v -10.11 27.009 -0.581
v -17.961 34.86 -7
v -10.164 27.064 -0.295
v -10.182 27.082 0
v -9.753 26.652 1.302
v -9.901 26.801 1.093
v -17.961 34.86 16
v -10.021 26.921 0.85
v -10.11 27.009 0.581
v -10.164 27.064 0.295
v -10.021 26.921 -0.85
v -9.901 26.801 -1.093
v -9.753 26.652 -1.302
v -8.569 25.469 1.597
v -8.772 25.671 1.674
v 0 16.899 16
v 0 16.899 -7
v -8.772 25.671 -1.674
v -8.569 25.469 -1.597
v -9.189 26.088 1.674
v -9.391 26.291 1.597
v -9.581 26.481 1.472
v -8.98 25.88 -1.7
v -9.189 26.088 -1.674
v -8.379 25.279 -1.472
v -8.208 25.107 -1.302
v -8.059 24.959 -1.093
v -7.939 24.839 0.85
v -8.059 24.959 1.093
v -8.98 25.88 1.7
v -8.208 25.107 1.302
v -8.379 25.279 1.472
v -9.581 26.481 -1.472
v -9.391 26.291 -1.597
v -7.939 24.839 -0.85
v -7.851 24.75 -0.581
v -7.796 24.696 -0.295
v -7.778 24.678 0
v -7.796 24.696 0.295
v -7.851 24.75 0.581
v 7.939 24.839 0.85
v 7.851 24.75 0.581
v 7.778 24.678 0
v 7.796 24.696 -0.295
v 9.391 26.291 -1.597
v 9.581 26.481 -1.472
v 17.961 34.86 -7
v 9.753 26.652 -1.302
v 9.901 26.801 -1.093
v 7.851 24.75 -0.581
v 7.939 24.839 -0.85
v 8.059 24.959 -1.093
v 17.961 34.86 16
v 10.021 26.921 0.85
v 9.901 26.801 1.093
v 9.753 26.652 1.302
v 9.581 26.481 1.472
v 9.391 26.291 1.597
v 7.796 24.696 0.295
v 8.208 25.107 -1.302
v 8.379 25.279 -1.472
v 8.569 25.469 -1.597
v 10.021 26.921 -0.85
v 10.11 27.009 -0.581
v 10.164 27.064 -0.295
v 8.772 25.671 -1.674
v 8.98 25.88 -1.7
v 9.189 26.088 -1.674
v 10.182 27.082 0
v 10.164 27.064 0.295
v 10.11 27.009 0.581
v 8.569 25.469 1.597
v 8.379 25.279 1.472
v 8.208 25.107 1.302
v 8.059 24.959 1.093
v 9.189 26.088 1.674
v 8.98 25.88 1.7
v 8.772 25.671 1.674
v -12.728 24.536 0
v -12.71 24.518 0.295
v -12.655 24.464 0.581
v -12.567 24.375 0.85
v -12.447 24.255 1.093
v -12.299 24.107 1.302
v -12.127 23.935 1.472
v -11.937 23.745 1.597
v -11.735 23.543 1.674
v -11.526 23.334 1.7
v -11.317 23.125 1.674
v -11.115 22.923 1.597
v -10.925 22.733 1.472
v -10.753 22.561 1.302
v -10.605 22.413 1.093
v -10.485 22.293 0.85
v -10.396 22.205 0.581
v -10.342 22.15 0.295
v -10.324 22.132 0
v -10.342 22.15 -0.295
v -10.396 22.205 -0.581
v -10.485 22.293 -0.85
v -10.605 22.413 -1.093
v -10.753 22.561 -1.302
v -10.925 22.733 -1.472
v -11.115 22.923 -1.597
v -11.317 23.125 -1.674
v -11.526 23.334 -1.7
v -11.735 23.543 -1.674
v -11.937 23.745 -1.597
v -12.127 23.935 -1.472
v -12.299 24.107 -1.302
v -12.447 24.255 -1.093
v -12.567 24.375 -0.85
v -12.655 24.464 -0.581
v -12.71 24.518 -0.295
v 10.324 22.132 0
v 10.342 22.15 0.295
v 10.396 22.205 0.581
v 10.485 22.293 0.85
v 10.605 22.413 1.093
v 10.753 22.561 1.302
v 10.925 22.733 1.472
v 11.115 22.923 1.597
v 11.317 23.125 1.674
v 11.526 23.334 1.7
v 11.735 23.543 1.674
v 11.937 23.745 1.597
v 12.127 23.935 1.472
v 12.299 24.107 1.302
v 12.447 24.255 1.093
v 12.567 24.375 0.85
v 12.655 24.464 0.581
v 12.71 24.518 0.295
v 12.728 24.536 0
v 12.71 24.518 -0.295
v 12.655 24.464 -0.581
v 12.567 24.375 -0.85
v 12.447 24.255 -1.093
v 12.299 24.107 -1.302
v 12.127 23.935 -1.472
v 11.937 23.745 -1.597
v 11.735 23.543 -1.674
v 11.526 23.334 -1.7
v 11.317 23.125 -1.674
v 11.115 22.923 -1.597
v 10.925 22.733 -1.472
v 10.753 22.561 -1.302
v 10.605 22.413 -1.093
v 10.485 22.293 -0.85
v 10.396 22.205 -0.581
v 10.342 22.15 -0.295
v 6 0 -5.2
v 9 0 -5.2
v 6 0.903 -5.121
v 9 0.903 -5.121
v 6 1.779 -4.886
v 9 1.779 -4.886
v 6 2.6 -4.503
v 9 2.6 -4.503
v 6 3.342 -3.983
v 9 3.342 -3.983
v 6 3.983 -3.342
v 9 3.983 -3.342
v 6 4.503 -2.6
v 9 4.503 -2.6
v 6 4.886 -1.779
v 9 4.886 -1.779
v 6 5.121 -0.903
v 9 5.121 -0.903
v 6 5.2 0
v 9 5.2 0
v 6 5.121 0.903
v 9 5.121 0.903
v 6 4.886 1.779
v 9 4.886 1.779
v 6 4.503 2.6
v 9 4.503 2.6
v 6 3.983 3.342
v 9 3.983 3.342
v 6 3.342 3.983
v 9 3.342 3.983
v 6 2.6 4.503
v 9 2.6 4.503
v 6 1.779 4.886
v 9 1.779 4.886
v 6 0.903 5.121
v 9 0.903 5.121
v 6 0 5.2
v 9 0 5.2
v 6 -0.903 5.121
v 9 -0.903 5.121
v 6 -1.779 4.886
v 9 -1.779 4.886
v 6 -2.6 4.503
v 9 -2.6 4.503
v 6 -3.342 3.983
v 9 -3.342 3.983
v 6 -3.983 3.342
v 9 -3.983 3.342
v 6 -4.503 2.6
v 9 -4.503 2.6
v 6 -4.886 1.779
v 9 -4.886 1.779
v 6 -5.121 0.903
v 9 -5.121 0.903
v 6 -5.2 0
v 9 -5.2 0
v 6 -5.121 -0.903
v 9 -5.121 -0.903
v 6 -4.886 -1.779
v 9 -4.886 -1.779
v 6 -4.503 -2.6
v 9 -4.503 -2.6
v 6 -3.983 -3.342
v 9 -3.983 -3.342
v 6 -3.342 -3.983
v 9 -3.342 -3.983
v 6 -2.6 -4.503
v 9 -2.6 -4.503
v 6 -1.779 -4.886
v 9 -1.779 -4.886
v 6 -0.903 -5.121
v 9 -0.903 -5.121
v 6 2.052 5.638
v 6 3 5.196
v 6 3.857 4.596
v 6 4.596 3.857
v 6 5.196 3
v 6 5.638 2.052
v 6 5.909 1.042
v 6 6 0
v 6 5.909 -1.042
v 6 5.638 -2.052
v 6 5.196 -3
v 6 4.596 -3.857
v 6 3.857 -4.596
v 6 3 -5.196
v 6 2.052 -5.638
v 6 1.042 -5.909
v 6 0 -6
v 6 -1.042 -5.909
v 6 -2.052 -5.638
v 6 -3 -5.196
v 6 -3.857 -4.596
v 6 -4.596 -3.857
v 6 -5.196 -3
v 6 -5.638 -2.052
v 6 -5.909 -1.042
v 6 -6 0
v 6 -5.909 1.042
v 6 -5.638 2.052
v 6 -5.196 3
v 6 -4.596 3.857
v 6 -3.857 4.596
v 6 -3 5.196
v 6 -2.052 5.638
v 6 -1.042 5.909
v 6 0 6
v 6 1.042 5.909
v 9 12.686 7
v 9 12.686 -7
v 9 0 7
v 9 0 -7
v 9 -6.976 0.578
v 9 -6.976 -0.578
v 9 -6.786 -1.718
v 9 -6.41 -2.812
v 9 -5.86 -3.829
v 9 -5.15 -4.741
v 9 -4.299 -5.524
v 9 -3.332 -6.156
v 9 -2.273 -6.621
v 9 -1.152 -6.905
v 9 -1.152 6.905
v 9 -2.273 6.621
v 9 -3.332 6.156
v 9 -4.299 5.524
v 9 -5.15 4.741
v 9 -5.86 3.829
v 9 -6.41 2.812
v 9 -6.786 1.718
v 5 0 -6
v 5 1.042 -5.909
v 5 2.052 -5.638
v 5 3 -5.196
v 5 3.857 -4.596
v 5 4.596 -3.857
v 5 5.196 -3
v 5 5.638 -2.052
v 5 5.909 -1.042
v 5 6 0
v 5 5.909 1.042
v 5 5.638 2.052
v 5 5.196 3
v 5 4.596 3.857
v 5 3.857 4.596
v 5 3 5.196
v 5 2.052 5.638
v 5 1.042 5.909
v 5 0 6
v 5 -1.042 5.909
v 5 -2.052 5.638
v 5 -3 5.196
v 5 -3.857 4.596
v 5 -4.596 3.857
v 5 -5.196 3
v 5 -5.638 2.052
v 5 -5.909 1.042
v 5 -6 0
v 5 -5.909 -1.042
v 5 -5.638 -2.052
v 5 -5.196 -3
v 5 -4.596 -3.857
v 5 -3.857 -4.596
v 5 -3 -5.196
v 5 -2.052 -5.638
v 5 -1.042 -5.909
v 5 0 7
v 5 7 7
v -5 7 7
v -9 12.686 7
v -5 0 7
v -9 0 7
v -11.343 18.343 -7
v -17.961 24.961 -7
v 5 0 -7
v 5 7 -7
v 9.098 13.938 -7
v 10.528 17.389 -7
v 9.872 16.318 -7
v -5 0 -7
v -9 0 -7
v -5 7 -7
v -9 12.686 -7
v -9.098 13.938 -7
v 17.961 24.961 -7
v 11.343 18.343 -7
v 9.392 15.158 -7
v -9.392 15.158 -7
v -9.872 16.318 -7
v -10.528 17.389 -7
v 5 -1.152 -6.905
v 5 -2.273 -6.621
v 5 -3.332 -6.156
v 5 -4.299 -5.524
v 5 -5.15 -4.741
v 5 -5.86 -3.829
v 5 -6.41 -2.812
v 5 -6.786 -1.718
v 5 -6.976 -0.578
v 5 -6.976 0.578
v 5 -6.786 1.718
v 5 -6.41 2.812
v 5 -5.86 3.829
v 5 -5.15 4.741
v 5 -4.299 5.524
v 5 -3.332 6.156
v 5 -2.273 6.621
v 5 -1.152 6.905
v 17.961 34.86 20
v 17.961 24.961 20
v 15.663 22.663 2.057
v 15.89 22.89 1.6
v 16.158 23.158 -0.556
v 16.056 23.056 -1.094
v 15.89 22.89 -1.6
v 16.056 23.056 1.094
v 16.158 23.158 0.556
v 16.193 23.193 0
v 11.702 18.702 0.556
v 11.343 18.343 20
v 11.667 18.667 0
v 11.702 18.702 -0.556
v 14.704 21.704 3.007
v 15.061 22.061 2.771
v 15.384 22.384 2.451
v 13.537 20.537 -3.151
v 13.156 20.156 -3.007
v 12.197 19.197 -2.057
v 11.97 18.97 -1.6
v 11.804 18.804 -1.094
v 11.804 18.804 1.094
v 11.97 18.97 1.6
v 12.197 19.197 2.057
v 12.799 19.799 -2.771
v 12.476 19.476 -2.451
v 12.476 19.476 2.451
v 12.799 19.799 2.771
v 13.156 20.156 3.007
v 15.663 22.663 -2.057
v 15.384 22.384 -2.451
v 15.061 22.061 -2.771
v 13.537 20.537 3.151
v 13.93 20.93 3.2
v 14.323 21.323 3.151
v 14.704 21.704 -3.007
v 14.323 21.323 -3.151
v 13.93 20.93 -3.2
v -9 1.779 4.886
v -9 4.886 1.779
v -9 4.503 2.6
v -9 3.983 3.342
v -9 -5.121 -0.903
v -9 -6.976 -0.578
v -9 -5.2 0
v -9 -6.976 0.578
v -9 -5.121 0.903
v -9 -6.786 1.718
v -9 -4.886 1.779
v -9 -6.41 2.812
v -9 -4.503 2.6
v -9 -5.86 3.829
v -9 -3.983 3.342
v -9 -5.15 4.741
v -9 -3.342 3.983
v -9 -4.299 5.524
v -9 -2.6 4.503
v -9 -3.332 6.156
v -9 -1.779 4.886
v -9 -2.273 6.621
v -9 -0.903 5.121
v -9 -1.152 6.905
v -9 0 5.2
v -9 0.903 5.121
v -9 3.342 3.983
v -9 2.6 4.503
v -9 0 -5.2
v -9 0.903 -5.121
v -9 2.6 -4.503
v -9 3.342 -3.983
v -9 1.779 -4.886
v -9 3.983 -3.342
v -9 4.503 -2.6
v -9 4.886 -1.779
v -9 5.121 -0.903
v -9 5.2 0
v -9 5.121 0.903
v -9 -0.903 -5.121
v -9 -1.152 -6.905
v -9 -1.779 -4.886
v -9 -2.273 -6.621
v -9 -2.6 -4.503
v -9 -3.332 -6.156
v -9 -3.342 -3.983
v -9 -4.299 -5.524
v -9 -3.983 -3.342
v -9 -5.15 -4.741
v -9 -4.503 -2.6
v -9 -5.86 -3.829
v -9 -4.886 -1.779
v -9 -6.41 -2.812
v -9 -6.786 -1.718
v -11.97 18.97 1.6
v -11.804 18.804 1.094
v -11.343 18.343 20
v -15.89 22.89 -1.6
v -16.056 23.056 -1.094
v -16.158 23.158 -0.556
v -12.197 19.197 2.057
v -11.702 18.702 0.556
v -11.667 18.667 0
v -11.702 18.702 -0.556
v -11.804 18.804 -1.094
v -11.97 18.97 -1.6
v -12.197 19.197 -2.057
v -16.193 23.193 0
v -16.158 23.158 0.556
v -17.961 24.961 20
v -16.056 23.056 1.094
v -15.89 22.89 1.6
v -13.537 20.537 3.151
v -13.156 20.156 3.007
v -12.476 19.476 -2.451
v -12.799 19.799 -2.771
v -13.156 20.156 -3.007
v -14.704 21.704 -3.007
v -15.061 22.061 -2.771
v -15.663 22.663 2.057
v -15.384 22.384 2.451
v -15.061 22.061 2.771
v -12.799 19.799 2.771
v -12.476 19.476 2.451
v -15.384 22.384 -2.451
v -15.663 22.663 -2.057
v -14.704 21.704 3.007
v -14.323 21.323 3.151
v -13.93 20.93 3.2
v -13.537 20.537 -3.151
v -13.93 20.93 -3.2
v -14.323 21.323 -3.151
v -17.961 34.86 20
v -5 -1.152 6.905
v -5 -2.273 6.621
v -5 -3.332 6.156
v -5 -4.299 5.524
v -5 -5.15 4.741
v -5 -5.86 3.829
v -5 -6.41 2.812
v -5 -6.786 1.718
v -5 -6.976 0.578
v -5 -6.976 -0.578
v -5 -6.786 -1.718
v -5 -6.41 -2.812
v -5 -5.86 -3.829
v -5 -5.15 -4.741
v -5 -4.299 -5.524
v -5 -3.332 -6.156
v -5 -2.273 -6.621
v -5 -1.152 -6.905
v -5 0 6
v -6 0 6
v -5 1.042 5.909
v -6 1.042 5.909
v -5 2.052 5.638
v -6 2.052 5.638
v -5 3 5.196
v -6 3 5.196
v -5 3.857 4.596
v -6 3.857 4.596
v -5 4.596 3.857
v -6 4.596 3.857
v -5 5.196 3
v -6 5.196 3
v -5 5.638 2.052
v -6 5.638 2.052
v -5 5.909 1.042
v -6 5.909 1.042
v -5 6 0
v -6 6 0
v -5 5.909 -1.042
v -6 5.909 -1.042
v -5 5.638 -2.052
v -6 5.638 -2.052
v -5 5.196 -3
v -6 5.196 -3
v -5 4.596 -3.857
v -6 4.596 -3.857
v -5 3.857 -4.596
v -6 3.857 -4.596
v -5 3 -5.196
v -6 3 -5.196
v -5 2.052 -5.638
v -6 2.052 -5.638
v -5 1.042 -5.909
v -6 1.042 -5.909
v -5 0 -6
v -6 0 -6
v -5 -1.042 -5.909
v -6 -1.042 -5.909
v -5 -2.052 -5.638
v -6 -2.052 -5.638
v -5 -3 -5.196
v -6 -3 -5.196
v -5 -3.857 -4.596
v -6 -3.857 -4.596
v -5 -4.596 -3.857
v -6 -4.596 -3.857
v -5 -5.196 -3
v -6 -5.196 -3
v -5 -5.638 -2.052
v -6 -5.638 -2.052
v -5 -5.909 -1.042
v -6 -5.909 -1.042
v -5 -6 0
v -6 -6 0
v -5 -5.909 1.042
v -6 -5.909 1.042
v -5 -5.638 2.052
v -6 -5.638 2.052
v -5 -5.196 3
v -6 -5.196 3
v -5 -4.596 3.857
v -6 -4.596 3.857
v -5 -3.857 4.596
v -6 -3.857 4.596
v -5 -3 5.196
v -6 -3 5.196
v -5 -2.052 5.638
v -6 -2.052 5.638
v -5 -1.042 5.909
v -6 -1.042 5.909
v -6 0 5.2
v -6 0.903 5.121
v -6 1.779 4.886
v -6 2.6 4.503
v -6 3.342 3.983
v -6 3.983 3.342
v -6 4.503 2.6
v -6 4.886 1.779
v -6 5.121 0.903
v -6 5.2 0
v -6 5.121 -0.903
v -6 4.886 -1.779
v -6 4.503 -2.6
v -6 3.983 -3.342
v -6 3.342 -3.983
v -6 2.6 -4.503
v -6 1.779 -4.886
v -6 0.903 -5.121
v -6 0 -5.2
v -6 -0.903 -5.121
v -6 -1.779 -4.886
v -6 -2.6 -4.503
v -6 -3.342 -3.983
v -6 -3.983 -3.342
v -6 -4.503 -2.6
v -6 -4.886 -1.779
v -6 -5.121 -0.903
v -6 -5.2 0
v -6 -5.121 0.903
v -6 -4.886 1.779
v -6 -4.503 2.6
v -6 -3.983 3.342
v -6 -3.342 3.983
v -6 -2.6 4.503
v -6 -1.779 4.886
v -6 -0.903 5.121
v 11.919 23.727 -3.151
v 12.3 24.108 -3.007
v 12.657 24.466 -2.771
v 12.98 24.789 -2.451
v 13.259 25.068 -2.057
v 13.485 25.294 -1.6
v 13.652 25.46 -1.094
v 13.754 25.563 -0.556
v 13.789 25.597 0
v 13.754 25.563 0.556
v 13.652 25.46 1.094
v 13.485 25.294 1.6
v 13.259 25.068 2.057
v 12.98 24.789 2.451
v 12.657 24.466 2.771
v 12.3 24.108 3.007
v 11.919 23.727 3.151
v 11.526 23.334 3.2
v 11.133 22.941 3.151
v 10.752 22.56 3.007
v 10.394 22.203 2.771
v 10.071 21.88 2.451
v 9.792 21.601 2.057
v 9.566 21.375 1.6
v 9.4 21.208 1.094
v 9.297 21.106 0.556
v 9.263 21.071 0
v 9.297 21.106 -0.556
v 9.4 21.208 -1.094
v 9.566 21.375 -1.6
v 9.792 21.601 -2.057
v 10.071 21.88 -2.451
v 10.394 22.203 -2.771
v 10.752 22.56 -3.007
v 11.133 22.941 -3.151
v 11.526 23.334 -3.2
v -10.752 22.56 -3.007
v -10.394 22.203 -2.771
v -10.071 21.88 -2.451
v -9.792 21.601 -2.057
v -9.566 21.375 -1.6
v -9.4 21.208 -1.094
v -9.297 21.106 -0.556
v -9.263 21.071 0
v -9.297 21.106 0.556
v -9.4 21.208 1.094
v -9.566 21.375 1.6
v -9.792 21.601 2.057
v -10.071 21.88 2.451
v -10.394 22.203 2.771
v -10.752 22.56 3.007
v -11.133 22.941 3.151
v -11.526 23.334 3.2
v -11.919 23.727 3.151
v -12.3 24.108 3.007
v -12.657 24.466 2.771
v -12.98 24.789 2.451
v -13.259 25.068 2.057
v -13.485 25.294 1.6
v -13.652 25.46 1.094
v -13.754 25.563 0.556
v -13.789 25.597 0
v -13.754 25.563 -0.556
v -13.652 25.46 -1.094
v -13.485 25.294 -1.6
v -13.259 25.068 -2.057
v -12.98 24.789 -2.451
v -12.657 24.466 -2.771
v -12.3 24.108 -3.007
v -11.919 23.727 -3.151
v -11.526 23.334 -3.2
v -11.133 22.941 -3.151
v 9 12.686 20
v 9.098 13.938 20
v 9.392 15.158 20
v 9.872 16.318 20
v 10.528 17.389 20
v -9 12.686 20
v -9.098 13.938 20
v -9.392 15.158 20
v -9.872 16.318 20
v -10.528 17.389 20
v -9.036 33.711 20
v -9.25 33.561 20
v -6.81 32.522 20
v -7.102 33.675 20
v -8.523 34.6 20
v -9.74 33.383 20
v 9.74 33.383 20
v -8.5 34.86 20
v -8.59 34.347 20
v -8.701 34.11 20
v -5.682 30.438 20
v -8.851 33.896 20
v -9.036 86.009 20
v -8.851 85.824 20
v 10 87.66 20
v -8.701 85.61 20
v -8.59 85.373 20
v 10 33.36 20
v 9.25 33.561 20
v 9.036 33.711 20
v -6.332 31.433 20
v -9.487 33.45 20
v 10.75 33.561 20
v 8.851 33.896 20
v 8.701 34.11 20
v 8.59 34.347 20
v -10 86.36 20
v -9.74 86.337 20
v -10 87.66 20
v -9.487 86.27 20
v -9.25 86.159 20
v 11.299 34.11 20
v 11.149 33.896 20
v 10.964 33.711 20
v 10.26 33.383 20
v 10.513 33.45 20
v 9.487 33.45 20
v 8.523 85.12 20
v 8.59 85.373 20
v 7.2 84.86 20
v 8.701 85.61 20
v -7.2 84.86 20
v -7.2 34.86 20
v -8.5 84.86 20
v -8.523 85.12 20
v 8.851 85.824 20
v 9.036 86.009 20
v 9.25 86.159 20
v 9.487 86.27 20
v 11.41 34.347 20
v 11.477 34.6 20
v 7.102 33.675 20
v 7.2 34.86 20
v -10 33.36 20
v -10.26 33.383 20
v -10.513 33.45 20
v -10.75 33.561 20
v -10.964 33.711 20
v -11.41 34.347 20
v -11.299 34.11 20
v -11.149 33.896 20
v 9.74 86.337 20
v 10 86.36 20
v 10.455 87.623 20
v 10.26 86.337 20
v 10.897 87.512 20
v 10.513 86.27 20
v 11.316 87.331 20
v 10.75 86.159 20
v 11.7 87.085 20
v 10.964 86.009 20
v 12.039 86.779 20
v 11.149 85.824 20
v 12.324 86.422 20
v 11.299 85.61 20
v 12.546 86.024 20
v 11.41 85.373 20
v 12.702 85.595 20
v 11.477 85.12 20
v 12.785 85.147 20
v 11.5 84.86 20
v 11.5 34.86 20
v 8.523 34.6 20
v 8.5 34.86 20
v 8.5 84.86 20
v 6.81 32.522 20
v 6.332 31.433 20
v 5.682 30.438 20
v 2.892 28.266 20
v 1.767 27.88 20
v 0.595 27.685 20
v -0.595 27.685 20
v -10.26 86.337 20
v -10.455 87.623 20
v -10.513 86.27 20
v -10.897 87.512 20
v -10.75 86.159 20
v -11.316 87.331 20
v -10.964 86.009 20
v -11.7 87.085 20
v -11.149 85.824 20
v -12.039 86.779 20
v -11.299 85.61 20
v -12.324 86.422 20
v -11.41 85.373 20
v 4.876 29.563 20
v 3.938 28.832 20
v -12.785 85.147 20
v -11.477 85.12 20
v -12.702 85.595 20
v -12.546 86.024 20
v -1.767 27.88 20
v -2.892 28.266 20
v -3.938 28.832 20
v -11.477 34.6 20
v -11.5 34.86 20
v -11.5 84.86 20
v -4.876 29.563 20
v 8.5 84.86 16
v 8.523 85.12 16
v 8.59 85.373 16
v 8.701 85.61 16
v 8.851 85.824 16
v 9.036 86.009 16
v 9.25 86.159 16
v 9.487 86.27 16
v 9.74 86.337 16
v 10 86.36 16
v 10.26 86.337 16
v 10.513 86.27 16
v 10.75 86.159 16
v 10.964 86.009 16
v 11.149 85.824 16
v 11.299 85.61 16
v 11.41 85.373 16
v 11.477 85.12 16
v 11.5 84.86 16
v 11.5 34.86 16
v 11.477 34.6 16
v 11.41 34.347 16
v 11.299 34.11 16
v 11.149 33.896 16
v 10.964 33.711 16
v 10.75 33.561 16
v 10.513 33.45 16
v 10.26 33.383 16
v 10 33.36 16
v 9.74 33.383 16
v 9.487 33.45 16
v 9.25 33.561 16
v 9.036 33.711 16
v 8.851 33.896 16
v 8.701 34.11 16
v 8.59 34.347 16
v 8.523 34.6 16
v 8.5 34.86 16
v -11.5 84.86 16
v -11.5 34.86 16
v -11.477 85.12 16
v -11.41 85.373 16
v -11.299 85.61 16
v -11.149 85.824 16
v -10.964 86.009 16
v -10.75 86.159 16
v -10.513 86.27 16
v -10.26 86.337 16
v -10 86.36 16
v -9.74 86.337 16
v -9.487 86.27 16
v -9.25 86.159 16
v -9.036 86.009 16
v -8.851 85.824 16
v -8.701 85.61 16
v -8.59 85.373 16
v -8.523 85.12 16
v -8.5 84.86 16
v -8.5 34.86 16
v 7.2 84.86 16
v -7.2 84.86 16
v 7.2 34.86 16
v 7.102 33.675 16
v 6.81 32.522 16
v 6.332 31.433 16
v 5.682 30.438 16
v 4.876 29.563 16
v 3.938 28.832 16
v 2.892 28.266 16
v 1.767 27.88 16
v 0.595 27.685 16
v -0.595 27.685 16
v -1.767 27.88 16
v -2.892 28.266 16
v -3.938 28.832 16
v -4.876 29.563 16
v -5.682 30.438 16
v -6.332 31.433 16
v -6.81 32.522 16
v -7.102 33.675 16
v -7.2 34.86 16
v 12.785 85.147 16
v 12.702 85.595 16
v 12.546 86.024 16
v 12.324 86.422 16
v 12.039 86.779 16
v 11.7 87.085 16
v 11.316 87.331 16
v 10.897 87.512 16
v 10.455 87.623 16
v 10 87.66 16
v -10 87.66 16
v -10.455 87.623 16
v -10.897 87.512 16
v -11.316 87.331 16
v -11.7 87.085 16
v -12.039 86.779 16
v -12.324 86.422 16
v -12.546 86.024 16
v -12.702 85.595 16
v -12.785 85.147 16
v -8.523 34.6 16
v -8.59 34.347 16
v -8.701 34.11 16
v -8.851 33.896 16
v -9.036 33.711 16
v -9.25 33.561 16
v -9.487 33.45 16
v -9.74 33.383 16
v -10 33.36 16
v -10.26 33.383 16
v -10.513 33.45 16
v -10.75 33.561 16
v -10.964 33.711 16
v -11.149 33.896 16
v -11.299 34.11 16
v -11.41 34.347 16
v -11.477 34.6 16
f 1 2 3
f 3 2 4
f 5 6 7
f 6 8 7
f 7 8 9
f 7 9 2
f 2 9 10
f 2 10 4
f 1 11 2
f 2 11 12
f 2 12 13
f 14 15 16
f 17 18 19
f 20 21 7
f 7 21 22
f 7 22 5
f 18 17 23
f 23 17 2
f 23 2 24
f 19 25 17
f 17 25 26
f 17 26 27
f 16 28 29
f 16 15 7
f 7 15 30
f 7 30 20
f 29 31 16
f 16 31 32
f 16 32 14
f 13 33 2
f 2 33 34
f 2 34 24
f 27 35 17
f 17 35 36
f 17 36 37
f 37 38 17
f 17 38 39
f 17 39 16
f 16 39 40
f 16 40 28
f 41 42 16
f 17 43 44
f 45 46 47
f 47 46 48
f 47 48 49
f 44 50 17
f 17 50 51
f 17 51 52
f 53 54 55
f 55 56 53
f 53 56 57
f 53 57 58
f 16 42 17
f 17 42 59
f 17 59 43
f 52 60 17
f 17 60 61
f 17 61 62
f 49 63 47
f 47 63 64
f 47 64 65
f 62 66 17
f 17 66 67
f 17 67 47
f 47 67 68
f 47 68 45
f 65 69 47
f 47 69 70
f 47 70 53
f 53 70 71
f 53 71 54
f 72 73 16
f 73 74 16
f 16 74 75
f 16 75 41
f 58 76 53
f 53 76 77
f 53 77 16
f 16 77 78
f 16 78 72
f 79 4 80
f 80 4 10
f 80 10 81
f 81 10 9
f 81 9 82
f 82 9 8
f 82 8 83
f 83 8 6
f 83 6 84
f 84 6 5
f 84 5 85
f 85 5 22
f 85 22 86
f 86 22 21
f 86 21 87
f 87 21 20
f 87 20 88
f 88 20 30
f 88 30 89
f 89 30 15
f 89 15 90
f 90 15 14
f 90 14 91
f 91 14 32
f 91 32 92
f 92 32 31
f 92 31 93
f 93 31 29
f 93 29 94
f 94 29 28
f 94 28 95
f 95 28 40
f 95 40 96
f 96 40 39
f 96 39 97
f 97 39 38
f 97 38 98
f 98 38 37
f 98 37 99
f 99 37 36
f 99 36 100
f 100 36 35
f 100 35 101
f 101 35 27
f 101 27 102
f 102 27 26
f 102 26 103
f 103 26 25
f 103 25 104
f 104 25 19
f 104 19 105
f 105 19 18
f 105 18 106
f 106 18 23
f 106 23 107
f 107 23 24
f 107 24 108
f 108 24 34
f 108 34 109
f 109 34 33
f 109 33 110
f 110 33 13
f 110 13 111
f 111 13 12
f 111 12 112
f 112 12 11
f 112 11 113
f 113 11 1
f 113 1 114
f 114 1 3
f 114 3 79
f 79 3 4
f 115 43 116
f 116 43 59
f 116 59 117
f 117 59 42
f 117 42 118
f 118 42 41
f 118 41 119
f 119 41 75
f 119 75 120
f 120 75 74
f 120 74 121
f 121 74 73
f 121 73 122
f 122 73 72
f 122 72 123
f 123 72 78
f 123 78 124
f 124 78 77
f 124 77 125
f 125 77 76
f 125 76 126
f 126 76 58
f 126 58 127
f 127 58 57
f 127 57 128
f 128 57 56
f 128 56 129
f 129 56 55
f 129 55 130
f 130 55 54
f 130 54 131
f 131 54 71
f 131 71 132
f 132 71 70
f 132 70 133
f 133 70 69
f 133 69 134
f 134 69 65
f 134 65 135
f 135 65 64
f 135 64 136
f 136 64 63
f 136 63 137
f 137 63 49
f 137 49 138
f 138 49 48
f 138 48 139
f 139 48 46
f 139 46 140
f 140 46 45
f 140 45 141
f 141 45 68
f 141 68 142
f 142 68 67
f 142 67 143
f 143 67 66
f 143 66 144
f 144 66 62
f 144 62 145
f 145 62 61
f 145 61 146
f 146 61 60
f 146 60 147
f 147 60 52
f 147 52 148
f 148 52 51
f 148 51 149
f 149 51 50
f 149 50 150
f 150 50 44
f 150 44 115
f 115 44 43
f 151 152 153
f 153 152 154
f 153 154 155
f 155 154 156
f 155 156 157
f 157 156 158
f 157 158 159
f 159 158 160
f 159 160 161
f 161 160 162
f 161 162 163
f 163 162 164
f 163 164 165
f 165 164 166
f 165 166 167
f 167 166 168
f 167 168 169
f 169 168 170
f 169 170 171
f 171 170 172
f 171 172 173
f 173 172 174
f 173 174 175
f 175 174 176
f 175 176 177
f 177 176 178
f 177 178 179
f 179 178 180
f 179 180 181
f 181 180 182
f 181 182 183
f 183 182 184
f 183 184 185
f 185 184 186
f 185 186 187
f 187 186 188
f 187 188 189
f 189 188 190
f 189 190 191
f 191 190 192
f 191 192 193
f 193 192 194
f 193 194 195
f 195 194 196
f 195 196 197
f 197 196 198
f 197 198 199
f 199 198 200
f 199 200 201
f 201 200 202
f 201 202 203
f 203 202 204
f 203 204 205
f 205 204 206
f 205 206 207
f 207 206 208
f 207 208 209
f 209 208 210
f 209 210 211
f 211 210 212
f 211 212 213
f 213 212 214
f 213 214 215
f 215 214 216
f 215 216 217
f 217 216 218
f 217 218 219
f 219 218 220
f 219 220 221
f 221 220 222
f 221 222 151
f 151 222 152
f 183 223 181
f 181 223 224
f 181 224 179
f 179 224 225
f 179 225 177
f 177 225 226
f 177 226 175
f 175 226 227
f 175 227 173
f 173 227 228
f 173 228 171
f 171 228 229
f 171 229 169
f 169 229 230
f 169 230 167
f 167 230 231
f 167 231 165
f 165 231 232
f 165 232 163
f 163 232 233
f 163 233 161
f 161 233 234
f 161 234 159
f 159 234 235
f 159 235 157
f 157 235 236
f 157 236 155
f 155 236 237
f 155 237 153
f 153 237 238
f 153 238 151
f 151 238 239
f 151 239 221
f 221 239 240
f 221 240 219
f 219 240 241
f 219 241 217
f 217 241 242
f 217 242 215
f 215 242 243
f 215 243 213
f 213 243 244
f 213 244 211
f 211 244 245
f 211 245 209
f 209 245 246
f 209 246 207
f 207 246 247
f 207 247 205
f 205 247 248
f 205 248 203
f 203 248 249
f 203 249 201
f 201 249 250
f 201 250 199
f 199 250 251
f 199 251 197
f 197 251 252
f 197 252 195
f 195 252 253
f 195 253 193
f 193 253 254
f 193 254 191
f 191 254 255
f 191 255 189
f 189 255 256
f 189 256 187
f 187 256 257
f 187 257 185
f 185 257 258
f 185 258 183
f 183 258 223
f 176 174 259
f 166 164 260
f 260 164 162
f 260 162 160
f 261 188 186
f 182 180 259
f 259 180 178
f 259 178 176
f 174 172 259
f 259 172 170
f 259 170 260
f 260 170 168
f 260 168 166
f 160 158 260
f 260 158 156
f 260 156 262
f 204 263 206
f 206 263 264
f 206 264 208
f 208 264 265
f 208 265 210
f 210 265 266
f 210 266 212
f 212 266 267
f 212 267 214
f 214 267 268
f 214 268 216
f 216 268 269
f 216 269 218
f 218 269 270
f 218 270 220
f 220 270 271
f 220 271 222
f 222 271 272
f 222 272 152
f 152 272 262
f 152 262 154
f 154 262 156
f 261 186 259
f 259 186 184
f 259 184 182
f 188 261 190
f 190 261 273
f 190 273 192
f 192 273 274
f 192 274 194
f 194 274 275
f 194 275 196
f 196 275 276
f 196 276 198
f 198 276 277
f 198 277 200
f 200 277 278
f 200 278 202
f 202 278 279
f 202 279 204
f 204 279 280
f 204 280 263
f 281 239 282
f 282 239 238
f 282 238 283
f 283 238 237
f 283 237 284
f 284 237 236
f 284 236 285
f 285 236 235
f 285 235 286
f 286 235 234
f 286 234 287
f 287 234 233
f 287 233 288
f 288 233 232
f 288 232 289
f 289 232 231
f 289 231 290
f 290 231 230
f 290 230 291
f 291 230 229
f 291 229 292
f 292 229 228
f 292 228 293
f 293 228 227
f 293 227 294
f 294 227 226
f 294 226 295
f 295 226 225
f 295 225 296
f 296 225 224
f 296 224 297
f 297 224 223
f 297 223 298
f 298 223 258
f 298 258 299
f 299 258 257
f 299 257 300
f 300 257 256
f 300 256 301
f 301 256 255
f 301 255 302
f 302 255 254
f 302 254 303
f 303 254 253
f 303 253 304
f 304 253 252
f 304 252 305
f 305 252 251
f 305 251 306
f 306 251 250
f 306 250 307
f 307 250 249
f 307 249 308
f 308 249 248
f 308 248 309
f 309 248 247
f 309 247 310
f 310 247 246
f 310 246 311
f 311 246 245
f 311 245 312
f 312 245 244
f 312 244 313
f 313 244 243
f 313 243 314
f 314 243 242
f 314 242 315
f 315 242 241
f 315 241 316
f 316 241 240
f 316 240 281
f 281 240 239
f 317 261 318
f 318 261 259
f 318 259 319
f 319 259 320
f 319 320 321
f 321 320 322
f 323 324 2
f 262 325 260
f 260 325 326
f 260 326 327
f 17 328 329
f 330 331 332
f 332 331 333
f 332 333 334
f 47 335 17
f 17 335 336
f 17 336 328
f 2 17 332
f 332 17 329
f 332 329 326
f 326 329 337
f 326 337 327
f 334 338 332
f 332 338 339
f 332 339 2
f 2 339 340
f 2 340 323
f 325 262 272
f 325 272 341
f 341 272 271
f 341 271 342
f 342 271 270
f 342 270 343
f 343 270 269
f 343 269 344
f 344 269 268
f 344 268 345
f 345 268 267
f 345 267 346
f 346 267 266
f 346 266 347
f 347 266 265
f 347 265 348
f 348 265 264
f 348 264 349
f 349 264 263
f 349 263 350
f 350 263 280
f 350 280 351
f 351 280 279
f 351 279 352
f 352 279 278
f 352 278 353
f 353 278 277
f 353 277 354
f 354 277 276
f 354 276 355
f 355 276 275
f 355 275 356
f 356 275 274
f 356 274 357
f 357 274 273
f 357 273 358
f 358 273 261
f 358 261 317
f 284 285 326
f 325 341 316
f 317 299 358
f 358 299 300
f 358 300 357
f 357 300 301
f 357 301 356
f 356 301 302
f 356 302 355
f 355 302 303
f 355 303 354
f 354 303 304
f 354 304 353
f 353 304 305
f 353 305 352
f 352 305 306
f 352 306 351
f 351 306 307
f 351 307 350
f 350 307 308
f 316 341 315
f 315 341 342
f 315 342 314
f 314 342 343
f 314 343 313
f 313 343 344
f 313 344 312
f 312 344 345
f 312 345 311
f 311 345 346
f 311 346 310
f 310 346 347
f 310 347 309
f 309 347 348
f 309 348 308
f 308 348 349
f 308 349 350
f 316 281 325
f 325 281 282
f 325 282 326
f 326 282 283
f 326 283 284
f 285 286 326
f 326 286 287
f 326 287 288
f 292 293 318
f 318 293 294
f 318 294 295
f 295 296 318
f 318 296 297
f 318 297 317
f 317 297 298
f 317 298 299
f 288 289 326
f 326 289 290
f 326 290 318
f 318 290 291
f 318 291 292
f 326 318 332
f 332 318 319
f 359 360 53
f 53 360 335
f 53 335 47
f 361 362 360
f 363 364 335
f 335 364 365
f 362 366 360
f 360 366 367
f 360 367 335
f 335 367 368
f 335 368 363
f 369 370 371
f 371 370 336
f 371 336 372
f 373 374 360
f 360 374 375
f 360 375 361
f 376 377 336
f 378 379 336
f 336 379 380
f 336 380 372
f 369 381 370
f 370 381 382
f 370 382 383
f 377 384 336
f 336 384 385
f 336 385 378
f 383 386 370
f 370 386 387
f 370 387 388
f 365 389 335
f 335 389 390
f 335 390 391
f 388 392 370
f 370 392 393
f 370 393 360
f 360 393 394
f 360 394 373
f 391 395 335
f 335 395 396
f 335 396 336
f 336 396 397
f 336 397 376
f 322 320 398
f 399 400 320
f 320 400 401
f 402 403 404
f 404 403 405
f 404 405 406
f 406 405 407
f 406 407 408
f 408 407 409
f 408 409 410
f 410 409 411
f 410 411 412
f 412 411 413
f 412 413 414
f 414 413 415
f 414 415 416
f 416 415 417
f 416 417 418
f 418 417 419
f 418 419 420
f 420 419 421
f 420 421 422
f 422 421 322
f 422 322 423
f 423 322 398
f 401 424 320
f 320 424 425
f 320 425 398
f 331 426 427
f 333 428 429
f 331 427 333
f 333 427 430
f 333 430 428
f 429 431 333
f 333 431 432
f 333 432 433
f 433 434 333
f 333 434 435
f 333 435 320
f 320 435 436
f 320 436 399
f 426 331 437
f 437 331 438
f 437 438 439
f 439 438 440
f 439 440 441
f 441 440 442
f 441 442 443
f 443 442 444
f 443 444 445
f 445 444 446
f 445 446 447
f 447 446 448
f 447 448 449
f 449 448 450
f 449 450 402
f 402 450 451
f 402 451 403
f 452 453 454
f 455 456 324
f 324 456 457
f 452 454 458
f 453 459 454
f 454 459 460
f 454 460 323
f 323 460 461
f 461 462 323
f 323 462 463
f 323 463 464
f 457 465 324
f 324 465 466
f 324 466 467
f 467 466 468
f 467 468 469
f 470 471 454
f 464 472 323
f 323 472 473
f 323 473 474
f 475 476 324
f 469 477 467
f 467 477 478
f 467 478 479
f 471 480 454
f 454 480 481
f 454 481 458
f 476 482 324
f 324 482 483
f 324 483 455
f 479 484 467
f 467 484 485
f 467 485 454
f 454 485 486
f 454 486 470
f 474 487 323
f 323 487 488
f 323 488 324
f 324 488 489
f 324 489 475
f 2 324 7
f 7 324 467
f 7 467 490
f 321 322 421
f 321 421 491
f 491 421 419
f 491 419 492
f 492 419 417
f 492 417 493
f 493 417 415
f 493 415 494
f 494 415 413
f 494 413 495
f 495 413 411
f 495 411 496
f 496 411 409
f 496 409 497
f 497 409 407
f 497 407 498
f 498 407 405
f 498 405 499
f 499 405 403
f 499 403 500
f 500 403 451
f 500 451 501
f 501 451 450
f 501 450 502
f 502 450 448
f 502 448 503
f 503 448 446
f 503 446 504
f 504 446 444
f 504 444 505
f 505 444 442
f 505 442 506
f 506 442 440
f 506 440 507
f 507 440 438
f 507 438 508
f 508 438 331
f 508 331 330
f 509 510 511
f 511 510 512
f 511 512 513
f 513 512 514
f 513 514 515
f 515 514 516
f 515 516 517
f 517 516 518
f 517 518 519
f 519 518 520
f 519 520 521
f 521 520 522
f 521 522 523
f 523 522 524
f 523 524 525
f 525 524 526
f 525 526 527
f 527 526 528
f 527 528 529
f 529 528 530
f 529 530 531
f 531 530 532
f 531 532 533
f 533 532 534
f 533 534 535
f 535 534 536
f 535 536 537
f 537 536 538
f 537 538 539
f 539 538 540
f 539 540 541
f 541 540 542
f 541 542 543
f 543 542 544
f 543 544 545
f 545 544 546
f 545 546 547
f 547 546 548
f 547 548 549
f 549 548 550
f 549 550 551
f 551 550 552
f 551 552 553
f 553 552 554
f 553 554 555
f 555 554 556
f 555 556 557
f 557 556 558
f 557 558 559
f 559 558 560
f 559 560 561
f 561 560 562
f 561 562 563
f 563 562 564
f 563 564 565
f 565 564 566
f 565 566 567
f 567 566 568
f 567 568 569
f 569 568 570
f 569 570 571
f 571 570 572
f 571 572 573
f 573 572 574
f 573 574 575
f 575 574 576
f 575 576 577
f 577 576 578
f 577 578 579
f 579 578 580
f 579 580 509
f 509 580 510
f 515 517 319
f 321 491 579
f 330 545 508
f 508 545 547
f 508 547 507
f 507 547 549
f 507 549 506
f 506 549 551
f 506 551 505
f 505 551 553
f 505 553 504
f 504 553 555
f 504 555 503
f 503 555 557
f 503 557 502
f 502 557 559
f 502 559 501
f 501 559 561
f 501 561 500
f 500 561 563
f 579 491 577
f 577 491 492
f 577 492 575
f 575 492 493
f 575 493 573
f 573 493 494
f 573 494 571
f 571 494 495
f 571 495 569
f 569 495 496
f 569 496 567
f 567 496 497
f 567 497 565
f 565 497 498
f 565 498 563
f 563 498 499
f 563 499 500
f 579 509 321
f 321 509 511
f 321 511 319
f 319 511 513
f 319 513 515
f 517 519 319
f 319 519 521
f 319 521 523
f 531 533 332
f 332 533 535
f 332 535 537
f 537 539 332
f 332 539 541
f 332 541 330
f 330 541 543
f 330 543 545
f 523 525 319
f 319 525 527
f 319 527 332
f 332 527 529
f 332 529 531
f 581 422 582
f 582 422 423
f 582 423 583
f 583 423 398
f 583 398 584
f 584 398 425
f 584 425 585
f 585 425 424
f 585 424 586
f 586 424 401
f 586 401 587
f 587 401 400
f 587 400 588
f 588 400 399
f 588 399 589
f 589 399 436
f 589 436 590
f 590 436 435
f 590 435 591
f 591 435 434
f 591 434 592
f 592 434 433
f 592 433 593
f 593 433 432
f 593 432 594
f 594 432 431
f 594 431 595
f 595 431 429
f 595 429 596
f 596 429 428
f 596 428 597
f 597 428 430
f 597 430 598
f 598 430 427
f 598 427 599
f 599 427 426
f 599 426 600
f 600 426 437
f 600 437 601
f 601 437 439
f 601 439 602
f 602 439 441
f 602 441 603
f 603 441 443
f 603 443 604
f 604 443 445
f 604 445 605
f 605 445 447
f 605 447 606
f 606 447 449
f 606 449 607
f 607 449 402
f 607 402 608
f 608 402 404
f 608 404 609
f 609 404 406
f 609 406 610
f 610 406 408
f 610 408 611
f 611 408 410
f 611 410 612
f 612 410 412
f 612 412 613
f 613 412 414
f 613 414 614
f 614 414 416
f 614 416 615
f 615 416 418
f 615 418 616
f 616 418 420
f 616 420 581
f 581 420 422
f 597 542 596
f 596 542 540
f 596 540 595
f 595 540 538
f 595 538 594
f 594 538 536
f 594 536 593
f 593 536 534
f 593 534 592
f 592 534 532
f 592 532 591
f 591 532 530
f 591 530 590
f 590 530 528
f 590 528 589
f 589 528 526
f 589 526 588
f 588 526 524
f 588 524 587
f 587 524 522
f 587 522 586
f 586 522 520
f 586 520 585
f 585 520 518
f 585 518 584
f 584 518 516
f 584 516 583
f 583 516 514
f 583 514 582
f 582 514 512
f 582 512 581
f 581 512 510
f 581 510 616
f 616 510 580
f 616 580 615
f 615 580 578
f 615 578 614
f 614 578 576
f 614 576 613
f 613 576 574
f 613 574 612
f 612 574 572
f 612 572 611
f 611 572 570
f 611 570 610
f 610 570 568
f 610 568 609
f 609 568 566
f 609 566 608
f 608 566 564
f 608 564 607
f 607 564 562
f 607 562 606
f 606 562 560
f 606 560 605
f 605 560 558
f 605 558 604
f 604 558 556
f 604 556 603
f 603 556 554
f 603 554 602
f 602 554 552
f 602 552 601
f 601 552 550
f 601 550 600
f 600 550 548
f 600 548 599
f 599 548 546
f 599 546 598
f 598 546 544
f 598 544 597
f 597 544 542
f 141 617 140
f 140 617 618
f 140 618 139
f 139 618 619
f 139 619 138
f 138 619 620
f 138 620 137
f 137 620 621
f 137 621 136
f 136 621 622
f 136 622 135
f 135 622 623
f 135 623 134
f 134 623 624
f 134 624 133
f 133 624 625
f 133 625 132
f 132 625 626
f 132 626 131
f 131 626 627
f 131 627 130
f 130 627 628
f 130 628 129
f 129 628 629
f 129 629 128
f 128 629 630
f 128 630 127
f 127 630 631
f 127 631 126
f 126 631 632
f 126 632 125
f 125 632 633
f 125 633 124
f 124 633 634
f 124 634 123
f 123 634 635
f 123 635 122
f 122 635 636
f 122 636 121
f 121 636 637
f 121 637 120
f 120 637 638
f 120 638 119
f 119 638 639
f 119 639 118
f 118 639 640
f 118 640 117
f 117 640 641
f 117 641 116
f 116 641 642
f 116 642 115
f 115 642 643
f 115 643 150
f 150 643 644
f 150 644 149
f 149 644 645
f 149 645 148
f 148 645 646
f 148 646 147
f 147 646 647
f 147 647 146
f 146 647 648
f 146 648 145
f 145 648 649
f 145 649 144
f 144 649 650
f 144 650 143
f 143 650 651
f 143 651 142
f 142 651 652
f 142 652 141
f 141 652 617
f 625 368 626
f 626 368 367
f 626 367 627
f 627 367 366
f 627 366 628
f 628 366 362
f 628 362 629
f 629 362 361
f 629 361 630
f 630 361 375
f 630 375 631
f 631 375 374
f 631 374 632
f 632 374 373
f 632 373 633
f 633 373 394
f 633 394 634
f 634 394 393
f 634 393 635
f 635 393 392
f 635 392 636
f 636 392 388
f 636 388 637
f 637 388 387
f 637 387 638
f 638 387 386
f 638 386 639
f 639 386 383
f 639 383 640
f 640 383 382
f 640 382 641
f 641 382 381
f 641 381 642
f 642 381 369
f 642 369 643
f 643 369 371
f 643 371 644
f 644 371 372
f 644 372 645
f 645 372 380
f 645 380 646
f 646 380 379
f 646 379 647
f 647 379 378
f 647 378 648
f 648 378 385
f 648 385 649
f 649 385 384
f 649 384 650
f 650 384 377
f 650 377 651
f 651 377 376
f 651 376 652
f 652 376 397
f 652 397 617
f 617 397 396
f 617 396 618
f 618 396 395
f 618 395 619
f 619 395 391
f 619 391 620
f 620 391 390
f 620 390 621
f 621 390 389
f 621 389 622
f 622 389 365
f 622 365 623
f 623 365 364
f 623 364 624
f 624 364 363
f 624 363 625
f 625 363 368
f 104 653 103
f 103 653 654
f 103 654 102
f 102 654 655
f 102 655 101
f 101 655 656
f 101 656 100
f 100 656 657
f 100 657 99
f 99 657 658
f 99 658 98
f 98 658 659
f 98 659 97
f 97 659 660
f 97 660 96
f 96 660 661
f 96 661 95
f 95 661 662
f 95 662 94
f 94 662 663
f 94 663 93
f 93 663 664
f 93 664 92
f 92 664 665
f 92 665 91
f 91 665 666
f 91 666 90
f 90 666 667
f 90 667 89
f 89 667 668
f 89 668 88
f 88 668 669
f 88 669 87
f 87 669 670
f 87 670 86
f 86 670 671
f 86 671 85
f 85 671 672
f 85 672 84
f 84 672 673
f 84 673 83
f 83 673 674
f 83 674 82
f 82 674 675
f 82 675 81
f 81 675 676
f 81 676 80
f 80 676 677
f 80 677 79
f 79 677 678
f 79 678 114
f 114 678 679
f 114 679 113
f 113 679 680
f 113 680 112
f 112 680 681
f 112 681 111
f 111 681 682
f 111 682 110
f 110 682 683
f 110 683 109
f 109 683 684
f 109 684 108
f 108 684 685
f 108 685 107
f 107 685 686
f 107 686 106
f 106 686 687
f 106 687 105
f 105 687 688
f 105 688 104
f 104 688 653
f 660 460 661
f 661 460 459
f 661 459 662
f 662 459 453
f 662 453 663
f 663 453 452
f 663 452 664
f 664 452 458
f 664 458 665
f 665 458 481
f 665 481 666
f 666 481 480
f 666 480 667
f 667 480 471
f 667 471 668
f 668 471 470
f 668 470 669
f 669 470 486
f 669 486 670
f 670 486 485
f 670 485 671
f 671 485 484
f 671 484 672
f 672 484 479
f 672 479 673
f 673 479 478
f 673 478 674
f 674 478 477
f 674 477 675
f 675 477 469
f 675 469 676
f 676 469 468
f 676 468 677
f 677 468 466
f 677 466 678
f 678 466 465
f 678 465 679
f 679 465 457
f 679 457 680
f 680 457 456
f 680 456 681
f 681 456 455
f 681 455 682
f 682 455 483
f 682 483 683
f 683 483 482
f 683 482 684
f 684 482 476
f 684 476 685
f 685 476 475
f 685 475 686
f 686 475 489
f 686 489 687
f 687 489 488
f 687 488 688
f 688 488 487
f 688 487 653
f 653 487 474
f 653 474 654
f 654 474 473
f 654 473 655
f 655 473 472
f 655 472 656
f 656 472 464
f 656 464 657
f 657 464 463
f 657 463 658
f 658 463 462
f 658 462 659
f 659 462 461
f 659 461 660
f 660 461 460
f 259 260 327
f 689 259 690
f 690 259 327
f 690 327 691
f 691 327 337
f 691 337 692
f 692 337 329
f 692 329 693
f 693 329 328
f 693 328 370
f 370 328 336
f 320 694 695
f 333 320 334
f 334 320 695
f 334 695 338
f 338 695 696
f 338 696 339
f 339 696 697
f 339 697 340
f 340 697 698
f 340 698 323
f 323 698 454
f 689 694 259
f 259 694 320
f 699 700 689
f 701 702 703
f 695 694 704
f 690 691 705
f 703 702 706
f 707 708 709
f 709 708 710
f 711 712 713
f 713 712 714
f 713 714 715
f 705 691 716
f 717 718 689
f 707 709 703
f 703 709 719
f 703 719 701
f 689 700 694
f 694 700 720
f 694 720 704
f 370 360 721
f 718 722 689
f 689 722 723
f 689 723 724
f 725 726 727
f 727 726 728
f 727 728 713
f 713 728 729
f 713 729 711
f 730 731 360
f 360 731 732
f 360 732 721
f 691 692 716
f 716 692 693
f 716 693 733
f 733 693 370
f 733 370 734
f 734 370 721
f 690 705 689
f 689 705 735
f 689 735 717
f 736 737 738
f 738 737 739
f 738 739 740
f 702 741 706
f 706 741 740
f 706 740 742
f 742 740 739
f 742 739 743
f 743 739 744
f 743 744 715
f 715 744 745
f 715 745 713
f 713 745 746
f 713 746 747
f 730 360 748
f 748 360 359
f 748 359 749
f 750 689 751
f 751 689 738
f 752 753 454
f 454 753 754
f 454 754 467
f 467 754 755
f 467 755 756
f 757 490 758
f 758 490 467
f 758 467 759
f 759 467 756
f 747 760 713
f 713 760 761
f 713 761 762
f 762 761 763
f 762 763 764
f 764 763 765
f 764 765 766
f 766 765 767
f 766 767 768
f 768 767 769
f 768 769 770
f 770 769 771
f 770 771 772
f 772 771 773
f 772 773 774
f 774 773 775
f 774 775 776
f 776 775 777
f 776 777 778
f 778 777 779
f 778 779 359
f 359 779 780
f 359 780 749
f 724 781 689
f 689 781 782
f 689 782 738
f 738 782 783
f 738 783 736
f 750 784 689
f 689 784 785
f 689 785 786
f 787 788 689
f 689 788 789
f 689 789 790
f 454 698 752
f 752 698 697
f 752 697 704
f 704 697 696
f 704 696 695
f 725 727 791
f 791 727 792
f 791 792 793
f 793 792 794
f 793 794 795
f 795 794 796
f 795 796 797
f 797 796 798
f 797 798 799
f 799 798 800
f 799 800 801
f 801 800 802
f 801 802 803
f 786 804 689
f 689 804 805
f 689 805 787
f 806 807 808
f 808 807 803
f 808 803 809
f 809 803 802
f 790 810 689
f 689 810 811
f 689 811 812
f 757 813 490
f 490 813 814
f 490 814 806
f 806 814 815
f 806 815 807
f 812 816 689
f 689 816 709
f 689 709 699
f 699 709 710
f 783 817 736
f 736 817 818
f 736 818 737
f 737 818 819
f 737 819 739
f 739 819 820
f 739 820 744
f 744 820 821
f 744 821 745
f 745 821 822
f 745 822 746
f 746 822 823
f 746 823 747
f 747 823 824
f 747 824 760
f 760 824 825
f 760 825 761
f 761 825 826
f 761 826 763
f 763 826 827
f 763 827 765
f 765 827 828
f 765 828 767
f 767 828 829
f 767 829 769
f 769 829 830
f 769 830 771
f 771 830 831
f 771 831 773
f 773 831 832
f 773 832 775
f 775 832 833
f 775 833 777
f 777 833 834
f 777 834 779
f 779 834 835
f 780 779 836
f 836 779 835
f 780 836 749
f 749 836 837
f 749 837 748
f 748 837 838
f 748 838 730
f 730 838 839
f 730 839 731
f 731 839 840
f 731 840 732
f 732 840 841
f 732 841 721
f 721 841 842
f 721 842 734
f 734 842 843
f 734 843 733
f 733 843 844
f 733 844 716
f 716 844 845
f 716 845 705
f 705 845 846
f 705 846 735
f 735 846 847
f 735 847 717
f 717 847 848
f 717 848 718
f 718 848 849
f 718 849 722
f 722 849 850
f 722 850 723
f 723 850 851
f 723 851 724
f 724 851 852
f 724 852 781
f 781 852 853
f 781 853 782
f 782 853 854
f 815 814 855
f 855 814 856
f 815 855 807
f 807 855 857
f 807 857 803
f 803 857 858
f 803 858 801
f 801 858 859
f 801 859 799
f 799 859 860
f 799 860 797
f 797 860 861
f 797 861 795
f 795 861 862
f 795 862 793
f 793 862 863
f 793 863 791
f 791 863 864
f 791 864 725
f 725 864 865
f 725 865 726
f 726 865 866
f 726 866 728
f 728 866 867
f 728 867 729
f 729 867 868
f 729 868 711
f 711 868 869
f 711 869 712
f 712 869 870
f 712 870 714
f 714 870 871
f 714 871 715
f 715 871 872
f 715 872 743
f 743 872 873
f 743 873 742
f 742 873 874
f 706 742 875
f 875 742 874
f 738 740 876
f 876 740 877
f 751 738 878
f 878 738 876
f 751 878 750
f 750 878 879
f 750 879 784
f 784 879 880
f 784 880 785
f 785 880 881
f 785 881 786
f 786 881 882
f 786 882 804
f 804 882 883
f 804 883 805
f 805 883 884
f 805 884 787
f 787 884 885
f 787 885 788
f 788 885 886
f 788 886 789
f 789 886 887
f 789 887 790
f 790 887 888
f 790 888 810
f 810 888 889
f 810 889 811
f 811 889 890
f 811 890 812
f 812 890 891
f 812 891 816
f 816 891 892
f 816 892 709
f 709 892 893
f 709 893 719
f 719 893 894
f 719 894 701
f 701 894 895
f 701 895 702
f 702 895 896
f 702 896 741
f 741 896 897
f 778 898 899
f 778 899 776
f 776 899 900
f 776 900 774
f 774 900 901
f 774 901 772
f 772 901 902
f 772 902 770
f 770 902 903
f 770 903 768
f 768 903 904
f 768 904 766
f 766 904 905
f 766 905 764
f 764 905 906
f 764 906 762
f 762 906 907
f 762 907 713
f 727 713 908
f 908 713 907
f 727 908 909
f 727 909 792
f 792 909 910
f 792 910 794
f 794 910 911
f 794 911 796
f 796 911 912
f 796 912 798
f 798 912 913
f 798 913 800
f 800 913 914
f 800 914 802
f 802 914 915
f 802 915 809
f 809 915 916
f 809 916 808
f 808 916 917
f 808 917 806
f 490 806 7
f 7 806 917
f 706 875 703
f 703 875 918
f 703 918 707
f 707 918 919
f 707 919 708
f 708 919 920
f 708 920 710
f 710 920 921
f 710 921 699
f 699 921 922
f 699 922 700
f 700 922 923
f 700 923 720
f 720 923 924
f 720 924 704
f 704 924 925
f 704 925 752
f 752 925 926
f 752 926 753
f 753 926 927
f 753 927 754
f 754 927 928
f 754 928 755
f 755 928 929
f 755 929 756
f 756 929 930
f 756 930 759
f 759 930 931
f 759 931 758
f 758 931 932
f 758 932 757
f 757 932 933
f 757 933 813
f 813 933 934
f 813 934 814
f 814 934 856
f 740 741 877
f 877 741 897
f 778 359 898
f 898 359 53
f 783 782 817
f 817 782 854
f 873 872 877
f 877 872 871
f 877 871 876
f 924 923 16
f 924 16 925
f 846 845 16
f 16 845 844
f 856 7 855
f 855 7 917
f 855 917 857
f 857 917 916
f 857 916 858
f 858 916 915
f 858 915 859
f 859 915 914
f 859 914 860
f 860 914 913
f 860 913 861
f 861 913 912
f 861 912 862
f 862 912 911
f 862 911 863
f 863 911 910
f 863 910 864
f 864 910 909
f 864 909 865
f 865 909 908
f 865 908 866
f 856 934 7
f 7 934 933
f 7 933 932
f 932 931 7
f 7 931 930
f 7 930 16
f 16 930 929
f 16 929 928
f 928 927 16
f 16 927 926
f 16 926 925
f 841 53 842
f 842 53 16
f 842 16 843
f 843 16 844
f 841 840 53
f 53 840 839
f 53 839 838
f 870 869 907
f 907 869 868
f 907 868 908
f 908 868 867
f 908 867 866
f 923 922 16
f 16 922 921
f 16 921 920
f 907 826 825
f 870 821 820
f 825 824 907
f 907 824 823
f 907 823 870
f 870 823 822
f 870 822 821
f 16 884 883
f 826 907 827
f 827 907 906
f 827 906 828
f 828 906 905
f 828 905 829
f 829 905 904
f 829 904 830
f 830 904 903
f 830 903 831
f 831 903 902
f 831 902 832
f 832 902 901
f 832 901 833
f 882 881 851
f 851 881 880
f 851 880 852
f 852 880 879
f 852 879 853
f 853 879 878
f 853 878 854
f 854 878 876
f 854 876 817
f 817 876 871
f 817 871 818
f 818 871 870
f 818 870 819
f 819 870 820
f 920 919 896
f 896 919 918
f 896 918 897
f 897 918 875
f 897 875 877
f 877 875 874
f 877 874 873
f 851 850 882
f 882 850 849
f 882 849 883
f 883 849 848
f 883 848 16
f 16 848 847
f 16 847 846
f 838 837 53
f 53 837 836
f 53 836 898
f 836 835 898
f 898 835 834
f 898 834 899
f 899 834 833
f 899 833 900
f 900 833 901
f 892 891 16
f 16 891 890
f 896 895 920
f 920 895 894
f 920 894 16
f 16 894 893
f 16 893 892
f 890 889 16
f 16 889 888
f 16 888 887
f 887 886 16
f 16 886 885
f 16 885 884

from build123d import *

# Parameters (mm, degrees)
SALIENTE_EXTRUIR1_START      = 9
CROQUIS1_R                   = 6
CROQUIS1_R_2                 = 5.2
SALIENTE_EXTRUIR1_DEPTH      = 3
SALIENTE_EXTRUIR2_START      = 9
CROQUIS1_3_R                 = 6
SALIENTE_EXTRUIR2_DEPTH      = 4
SALIENTE_EXTRUIR3_START      = -9
CROQUIS1_4_R                 = 7
CROQUIS1_4_R_2               = 6
SALIENTE_EXTRUIR3_DEPTH      = 4
SALIENTE_EXTRUIR4_START      = -9
CROQUIS1_5_R                 = 6
CROQUIS1_5_R_2               = 5.2
SALIENTE_EXTRUIR4_DEPTH      = 3
SALIENTE_EXTRUIR5_DEPTH      = 7
SALIENTE_EXTRUIR5_DEPTH_BACK = 7
CROQUIS3_R                   = 1.7
CORTAR_EXTRUIR1_DEPTH        = 7
CROQUIS4_R                   = 1.7
CORTAR_EXTRUIR2_DEPTH        = 7
CROQUIS5_R                   = 3.2
CORTAR_EXTRUIR3_DEPTH        = 3.4
CROQUIS6_R                   = 3.2
CORTAR_EXTRUIR4_DEPTH        = 3.4
REDONDEO1_R                  = 8
SALIENTE_EXTRUIR6_START      = 9
SALIENTE_EXTRUIR6_DEPTH      = 4
SALIENTE_EXTRUIR7_DEPTH      = 13


with BuildPart() as part:
    # Croquis1 → Saliente-Extruir1 (new body)
    with BuildSketch(Plane(origin=(0, 0, 0), x_dir=(0, 0, -1), z_dir=(1, 0, 0)).offset(SALIENTE_EXTRUIR1_START)):
        Circle(CROQUIS1_R)
        Circle(CROQUIS1_R_2, mode=Mode.SUBTRACT)
    extrude(amount=-SALIENTE_EXTRUIR1_DEPTH)

    # Croquis1<3> → Saliente-Extruir2 (add)
    with BuildSketch(Plane(origin=(0, 0, 0), x_dir=(0, 0, -1), z_dir=(1, 0, 0)).offset(SALIENTE_EXTRUIR2_START)):
        with BuildLine():
            Line((-7, 7), (-7, 0))
            ThreePointArc((-7, 0), (0, -7), (7, 0))
            Line((7, 0), (7, 7))
            Line((7, 7), (-7, 7))
        make_face()
        Circle(CROQUIS1_3_R, mode=Mode.SUBTRACT)
    extrude(amount=-SALIENTE_EXTRUIR2_DEPTH)



with BuildPart() as body_2:
    # Croquis1<4> → Saliente-Extruir3 (new body)
    with BuildSketch(Plane(origin=(0, 0, 0), x_dir=(0, 0, -1), z_dir=(1, 0, 0)).offset(SALIENTE_EXTRUIR3_START)):
        with BuildLine():
            Line((-7, 7), (-7, 0))
            ThreePointArc((-7, 0), (-4.949747468, 4.949747468), (0, 7))
            Line((0, 7), (-7, 7))
        make_face()
        with BuildLine():
            ThreePointArc((0, 7), (4.949747468, 4.949747468), (7, 0))
            Line((7, 0), (7, 7))
            Line((7, 7), (0, 7))
        make_face()
        Circle(CROQUIS1_4_R)
        Circle(CROQUIS1_4_R_2, mode=Mode.SUBTRACT)
    extrude(amount=SALIENTE_EXTRUIR3_DEPTH)

    # Croquis1<5> → Saliente-Extruir4 (add)
    with BuildSketch(Plane(origin=(0, 0, 0), x_dir=(0, 0, -1), z_dir=(1, 0, 0)).offset(SALIENTE_EXTRUIR4_START)):
        Circle(CROQUIS1_5_R)
        Circle(CROQUIS1_5_R_2, mode=Mode.SUBTRACT)
    extrude(amount=SALIENTE_EXTRUIR4_DEPTH)


with BuildPart() as part_1:
    add(part.part)

    add(body_2.part)  # Saliente-Extruir5 merges body 2
    # Croquis2 → Saliente-Extruir5 (add, two sides)
    with BuildSketch(Plane.XY) as saliente_extruir5_sk:
        Polygon((9, 16), (17.960512242, 24.960512242), (17.960512242, 34.860007179), (0, 16.899494937), (-17.960512242, 34.860007179), (-17.960512242, 24.960512242), (-9, 16), (-9, 7), (9, 7), align=None)
    extrude(amount=SALIENTE_EXTRUIR5_DEPTH)
    extrude(saliente_extruir5_sk.sketch, amount=-SALIENTE_EXTRUIR5_DEPTH_BACK)

    # Croquis3 → Cortar-Extruir1 (cut)
    with BuildSketch(Plane(origin=(8.449747468, 8.449747468, 0), x_dir=(0.7071067811865509, -0.7071067811865441, 0), z_dir=(0.7071067811865441, 0.7071067811865509, 0))):
        with Locations(Location((-24.649747468, 0, 0), (0, 0, 180))):
            Circle(CROQUIS3_R)
    extrude(amount=-CORTAR_EXTRUIR1_DEPTH, mode=Mode.SUBTRACT)

    # Croquis4 → Cortar-Extruir2 (cut)
    with BuildSketch(Plane(origin=(-8.449747468, 8.449747468, 0), x_dir=(0.7071067811865509, 0.7071067811865441, 0), z_dir=(-0.7071067811865441, 0.7071067811865509, 0))):
        with Locations(Location((24.649747468, 0, 0), (0, 0, 180))):
            Circle(CROQUIS4_R)
    extrude(amount=-CORTAR_EXTRUIR2_DEPTH, mode=Mode.SUBTRACT)

    # Croquis5 → Cortar-Extruir3 (cut)
    with BuildSketch(Plane(origin=(-3.5, 3.5, 0), x_dir=(-0.7071067811865511, -0.707106781186544, 0), z_dir=(0.707106781186544, -0.7071067811865511, 0))):
        with Locations(Location((-24.649747468, 0, 0), (0, 0, 180))):
            Circle(CROQUIS5_R)
    extrude(amount=-CORTAR_EXTRUIR3_DEPTH, mode=Mode.SUBTRACT)

    # Croquis6 → Cortar-Extruir4 (cut)
    with BuildSketch(Plane(origin=(3.5, 3.5, 0), x_dir=(-0.7071067811865512, 0.7071067811865438, 0), z_dir=(-0.7071067811865438, -0.7071067811865512, 0))):
        with Locations(Location((24.649747468, 0, 0), (0, 0, 180))):
            Circle(CROQUIS6_R)
    extrude(amount=-CORTAR_EXTRUIR4_DEPTH, mode=Mode.SUBTRACT)

    # Redondeo1
    redondeo1_edges = [part_1.edges().sort_by_distance(p)[0] for p in [
        (9, 16, 0),
        (-9, 16, 0),
    ]]
    fillet(redondeo1_edges, radius=REDONDEO1_R)



with BuildPart() as body_2_2:
    # Croquis7 → Saliente-Extruir6 (new body)
    with BuildSketch(Plane.XY.offset(7).offset(SALIENTE_EXTRUIR6_START)):
        with BuildLine():
            Line((-17.960512242, 34.860007179), (0, 16.899494937))
            Line((0, 16.899494937), (17.960512242, 34.860007179))
            Line((17.960512242, 34.860007179), (12.785288814, 85.146653693))
            ThreePointArc((12.785288814, 85.146653693), (12.796319785, 85.003519062), (12.8, 84.860007179))
            Line((12.8, 84.860007179), (12.8, 34.860007179))
            ThreePointArc((12.8, 34.860007179), (10, 32.060007179), (7.2, 34.860007179))
            ThreePointArc((7.2, 34.860007179), (0, 27.660007179), (-7.2, 34.860007179))
            ThreePointArc((-7.2, 34.860007179), (-10, 32.060007179), (-12.8, 34.860007179))
            Line((-12.8, 34.860007179), (-12.8, 84.860007179))
            ThreePointArc((-12.8, 84.860007179), (-12.796319785, 85.003519062), (-12.785288814, 85.146653693))
            Line((-12.785288814, 85.146653693), (-17.960512242, 34.860007179))
        make_face()
        with BuildLine():
            ThreePointArc((-12.8, 84.860007179), (-10, 87.660007179), (-7.2, 84.860007179))
            Line((-7.2, 84.860007179), (-7.2, 34.860007179))
            ThreePointArc((-7.2, 34.860007179), (-10, 32.060007179), (-12.8, 34.860007179))
            Line((-12.8, 34.860007179), (-12.8, 84.860007179))
        make_face()
        with BuildLine():
            Line((-11.5, 84.860007179), (-11.5, 34.860007179))
            ThreePointArc((-11.5, 34.860007179), (-10, 33.360007179), (-8.5, 34.860007179))
            Line((-8.5, 34.860007179), (-8.5, 84.860007179))
            ThreePointArc((-8.5, 84.860007179), (-10, 86.360007179), (-11.5, 84.860007179))
        make_face(mode=Mode.SUBTRACT)
        with BuildLine():
            Line((12.8, 84.860007179), (12.8, 34.860007179))
            ThreePointArc((12.8, 34.860007179), (10, 32.060007179), (7.2, 34.860007179))
            Line((7.2, 34.860007179), (7.2, 84.860007179))
            ThreePointArc((7.2, 84.860007179), (10, 87.660007179), (12.8, 84.860007179))
        make_face()
        with BuildLine():
            ThreePointArc((11.5, 84.860007179), (10, 86.360007179), (8.5, 84.860007179))
            Line((8.5, 84.860007179), (8.5, 34.860007179))
            ThreePointArc((8.5, 34.860007179), (10, 33.360007179), (11.5, 34.860007179))
            Line((11.5, 34.860007179), (11.5, 84.860007179))
        make_face(mode=Mode.SUBTRACT)
        with BuildLine():
            Line((0, 87.660007179), (-10, 87.660007179))
            ThreePointArc((-10, 87.660007179), (-8.020101013, 86.839906166), (-7.2, 84.860007179))
            Line((-7.2, 84.860007179), (0, 84.860007179))
            Line((0, 84.860007179), (0, 87.660007179))
        make_face()
        with BuildLine():
            ThreePointArc((7.2, 84.860007179), (8.020101013, 86.839906166), (10, 87.660007179))
            Line((10, 87.660007179), (0, 87.660007179))
            Line((0, 87.660007179), (0, 84.860007179))
            Line((0, 84.860007179), (7.2, 84.860007179))
        make_face()
    extrude(amount=SALIENTE_EXTRUIR6_DEPTH)


with BuildPart() as part_2:
    add(part_1.part)

    add(body_2_2.part)  # Saliente-Extruir7 merges body 2 2
    # Croquis7<4> → Saliente-Extruir7 (add)
    with BuildSketch(Plane.XY.offset(7)):
        with BuildLine():
            ThreePointArc((-9, 12.686291501), (-9.60896374, 15.74775896), (-11.343145751, 18.343145751))
            Line((-11.343145751, 18.343145751), (-17.960512242, 24.960512242))
            Line((-17.960512242, 24.960512242), (-17.960512242, 34.860007179))
            Line((-17.960512242, 34.860007179), (0, 16.899494937))
            Line((0, 16.899494937), (17.960512242, 34.860007179))
            Line((17.960512242, 34.860007179), (17.960512242, 24.960512242))
            Line((17.960512242, 24.960512242), (11.343145751, 18.343145751))
            ThreePointArc((11.343145751, 18.343145751), (9.60896374, 15.74775896), (9, 12.686291501))
            Line((9, 12.686291501), (-9, 12.686291501))
        make_face()
    extrude(amount=SALIENTE_EXTRUIR7_DEPTH)


solid = part_2.part
